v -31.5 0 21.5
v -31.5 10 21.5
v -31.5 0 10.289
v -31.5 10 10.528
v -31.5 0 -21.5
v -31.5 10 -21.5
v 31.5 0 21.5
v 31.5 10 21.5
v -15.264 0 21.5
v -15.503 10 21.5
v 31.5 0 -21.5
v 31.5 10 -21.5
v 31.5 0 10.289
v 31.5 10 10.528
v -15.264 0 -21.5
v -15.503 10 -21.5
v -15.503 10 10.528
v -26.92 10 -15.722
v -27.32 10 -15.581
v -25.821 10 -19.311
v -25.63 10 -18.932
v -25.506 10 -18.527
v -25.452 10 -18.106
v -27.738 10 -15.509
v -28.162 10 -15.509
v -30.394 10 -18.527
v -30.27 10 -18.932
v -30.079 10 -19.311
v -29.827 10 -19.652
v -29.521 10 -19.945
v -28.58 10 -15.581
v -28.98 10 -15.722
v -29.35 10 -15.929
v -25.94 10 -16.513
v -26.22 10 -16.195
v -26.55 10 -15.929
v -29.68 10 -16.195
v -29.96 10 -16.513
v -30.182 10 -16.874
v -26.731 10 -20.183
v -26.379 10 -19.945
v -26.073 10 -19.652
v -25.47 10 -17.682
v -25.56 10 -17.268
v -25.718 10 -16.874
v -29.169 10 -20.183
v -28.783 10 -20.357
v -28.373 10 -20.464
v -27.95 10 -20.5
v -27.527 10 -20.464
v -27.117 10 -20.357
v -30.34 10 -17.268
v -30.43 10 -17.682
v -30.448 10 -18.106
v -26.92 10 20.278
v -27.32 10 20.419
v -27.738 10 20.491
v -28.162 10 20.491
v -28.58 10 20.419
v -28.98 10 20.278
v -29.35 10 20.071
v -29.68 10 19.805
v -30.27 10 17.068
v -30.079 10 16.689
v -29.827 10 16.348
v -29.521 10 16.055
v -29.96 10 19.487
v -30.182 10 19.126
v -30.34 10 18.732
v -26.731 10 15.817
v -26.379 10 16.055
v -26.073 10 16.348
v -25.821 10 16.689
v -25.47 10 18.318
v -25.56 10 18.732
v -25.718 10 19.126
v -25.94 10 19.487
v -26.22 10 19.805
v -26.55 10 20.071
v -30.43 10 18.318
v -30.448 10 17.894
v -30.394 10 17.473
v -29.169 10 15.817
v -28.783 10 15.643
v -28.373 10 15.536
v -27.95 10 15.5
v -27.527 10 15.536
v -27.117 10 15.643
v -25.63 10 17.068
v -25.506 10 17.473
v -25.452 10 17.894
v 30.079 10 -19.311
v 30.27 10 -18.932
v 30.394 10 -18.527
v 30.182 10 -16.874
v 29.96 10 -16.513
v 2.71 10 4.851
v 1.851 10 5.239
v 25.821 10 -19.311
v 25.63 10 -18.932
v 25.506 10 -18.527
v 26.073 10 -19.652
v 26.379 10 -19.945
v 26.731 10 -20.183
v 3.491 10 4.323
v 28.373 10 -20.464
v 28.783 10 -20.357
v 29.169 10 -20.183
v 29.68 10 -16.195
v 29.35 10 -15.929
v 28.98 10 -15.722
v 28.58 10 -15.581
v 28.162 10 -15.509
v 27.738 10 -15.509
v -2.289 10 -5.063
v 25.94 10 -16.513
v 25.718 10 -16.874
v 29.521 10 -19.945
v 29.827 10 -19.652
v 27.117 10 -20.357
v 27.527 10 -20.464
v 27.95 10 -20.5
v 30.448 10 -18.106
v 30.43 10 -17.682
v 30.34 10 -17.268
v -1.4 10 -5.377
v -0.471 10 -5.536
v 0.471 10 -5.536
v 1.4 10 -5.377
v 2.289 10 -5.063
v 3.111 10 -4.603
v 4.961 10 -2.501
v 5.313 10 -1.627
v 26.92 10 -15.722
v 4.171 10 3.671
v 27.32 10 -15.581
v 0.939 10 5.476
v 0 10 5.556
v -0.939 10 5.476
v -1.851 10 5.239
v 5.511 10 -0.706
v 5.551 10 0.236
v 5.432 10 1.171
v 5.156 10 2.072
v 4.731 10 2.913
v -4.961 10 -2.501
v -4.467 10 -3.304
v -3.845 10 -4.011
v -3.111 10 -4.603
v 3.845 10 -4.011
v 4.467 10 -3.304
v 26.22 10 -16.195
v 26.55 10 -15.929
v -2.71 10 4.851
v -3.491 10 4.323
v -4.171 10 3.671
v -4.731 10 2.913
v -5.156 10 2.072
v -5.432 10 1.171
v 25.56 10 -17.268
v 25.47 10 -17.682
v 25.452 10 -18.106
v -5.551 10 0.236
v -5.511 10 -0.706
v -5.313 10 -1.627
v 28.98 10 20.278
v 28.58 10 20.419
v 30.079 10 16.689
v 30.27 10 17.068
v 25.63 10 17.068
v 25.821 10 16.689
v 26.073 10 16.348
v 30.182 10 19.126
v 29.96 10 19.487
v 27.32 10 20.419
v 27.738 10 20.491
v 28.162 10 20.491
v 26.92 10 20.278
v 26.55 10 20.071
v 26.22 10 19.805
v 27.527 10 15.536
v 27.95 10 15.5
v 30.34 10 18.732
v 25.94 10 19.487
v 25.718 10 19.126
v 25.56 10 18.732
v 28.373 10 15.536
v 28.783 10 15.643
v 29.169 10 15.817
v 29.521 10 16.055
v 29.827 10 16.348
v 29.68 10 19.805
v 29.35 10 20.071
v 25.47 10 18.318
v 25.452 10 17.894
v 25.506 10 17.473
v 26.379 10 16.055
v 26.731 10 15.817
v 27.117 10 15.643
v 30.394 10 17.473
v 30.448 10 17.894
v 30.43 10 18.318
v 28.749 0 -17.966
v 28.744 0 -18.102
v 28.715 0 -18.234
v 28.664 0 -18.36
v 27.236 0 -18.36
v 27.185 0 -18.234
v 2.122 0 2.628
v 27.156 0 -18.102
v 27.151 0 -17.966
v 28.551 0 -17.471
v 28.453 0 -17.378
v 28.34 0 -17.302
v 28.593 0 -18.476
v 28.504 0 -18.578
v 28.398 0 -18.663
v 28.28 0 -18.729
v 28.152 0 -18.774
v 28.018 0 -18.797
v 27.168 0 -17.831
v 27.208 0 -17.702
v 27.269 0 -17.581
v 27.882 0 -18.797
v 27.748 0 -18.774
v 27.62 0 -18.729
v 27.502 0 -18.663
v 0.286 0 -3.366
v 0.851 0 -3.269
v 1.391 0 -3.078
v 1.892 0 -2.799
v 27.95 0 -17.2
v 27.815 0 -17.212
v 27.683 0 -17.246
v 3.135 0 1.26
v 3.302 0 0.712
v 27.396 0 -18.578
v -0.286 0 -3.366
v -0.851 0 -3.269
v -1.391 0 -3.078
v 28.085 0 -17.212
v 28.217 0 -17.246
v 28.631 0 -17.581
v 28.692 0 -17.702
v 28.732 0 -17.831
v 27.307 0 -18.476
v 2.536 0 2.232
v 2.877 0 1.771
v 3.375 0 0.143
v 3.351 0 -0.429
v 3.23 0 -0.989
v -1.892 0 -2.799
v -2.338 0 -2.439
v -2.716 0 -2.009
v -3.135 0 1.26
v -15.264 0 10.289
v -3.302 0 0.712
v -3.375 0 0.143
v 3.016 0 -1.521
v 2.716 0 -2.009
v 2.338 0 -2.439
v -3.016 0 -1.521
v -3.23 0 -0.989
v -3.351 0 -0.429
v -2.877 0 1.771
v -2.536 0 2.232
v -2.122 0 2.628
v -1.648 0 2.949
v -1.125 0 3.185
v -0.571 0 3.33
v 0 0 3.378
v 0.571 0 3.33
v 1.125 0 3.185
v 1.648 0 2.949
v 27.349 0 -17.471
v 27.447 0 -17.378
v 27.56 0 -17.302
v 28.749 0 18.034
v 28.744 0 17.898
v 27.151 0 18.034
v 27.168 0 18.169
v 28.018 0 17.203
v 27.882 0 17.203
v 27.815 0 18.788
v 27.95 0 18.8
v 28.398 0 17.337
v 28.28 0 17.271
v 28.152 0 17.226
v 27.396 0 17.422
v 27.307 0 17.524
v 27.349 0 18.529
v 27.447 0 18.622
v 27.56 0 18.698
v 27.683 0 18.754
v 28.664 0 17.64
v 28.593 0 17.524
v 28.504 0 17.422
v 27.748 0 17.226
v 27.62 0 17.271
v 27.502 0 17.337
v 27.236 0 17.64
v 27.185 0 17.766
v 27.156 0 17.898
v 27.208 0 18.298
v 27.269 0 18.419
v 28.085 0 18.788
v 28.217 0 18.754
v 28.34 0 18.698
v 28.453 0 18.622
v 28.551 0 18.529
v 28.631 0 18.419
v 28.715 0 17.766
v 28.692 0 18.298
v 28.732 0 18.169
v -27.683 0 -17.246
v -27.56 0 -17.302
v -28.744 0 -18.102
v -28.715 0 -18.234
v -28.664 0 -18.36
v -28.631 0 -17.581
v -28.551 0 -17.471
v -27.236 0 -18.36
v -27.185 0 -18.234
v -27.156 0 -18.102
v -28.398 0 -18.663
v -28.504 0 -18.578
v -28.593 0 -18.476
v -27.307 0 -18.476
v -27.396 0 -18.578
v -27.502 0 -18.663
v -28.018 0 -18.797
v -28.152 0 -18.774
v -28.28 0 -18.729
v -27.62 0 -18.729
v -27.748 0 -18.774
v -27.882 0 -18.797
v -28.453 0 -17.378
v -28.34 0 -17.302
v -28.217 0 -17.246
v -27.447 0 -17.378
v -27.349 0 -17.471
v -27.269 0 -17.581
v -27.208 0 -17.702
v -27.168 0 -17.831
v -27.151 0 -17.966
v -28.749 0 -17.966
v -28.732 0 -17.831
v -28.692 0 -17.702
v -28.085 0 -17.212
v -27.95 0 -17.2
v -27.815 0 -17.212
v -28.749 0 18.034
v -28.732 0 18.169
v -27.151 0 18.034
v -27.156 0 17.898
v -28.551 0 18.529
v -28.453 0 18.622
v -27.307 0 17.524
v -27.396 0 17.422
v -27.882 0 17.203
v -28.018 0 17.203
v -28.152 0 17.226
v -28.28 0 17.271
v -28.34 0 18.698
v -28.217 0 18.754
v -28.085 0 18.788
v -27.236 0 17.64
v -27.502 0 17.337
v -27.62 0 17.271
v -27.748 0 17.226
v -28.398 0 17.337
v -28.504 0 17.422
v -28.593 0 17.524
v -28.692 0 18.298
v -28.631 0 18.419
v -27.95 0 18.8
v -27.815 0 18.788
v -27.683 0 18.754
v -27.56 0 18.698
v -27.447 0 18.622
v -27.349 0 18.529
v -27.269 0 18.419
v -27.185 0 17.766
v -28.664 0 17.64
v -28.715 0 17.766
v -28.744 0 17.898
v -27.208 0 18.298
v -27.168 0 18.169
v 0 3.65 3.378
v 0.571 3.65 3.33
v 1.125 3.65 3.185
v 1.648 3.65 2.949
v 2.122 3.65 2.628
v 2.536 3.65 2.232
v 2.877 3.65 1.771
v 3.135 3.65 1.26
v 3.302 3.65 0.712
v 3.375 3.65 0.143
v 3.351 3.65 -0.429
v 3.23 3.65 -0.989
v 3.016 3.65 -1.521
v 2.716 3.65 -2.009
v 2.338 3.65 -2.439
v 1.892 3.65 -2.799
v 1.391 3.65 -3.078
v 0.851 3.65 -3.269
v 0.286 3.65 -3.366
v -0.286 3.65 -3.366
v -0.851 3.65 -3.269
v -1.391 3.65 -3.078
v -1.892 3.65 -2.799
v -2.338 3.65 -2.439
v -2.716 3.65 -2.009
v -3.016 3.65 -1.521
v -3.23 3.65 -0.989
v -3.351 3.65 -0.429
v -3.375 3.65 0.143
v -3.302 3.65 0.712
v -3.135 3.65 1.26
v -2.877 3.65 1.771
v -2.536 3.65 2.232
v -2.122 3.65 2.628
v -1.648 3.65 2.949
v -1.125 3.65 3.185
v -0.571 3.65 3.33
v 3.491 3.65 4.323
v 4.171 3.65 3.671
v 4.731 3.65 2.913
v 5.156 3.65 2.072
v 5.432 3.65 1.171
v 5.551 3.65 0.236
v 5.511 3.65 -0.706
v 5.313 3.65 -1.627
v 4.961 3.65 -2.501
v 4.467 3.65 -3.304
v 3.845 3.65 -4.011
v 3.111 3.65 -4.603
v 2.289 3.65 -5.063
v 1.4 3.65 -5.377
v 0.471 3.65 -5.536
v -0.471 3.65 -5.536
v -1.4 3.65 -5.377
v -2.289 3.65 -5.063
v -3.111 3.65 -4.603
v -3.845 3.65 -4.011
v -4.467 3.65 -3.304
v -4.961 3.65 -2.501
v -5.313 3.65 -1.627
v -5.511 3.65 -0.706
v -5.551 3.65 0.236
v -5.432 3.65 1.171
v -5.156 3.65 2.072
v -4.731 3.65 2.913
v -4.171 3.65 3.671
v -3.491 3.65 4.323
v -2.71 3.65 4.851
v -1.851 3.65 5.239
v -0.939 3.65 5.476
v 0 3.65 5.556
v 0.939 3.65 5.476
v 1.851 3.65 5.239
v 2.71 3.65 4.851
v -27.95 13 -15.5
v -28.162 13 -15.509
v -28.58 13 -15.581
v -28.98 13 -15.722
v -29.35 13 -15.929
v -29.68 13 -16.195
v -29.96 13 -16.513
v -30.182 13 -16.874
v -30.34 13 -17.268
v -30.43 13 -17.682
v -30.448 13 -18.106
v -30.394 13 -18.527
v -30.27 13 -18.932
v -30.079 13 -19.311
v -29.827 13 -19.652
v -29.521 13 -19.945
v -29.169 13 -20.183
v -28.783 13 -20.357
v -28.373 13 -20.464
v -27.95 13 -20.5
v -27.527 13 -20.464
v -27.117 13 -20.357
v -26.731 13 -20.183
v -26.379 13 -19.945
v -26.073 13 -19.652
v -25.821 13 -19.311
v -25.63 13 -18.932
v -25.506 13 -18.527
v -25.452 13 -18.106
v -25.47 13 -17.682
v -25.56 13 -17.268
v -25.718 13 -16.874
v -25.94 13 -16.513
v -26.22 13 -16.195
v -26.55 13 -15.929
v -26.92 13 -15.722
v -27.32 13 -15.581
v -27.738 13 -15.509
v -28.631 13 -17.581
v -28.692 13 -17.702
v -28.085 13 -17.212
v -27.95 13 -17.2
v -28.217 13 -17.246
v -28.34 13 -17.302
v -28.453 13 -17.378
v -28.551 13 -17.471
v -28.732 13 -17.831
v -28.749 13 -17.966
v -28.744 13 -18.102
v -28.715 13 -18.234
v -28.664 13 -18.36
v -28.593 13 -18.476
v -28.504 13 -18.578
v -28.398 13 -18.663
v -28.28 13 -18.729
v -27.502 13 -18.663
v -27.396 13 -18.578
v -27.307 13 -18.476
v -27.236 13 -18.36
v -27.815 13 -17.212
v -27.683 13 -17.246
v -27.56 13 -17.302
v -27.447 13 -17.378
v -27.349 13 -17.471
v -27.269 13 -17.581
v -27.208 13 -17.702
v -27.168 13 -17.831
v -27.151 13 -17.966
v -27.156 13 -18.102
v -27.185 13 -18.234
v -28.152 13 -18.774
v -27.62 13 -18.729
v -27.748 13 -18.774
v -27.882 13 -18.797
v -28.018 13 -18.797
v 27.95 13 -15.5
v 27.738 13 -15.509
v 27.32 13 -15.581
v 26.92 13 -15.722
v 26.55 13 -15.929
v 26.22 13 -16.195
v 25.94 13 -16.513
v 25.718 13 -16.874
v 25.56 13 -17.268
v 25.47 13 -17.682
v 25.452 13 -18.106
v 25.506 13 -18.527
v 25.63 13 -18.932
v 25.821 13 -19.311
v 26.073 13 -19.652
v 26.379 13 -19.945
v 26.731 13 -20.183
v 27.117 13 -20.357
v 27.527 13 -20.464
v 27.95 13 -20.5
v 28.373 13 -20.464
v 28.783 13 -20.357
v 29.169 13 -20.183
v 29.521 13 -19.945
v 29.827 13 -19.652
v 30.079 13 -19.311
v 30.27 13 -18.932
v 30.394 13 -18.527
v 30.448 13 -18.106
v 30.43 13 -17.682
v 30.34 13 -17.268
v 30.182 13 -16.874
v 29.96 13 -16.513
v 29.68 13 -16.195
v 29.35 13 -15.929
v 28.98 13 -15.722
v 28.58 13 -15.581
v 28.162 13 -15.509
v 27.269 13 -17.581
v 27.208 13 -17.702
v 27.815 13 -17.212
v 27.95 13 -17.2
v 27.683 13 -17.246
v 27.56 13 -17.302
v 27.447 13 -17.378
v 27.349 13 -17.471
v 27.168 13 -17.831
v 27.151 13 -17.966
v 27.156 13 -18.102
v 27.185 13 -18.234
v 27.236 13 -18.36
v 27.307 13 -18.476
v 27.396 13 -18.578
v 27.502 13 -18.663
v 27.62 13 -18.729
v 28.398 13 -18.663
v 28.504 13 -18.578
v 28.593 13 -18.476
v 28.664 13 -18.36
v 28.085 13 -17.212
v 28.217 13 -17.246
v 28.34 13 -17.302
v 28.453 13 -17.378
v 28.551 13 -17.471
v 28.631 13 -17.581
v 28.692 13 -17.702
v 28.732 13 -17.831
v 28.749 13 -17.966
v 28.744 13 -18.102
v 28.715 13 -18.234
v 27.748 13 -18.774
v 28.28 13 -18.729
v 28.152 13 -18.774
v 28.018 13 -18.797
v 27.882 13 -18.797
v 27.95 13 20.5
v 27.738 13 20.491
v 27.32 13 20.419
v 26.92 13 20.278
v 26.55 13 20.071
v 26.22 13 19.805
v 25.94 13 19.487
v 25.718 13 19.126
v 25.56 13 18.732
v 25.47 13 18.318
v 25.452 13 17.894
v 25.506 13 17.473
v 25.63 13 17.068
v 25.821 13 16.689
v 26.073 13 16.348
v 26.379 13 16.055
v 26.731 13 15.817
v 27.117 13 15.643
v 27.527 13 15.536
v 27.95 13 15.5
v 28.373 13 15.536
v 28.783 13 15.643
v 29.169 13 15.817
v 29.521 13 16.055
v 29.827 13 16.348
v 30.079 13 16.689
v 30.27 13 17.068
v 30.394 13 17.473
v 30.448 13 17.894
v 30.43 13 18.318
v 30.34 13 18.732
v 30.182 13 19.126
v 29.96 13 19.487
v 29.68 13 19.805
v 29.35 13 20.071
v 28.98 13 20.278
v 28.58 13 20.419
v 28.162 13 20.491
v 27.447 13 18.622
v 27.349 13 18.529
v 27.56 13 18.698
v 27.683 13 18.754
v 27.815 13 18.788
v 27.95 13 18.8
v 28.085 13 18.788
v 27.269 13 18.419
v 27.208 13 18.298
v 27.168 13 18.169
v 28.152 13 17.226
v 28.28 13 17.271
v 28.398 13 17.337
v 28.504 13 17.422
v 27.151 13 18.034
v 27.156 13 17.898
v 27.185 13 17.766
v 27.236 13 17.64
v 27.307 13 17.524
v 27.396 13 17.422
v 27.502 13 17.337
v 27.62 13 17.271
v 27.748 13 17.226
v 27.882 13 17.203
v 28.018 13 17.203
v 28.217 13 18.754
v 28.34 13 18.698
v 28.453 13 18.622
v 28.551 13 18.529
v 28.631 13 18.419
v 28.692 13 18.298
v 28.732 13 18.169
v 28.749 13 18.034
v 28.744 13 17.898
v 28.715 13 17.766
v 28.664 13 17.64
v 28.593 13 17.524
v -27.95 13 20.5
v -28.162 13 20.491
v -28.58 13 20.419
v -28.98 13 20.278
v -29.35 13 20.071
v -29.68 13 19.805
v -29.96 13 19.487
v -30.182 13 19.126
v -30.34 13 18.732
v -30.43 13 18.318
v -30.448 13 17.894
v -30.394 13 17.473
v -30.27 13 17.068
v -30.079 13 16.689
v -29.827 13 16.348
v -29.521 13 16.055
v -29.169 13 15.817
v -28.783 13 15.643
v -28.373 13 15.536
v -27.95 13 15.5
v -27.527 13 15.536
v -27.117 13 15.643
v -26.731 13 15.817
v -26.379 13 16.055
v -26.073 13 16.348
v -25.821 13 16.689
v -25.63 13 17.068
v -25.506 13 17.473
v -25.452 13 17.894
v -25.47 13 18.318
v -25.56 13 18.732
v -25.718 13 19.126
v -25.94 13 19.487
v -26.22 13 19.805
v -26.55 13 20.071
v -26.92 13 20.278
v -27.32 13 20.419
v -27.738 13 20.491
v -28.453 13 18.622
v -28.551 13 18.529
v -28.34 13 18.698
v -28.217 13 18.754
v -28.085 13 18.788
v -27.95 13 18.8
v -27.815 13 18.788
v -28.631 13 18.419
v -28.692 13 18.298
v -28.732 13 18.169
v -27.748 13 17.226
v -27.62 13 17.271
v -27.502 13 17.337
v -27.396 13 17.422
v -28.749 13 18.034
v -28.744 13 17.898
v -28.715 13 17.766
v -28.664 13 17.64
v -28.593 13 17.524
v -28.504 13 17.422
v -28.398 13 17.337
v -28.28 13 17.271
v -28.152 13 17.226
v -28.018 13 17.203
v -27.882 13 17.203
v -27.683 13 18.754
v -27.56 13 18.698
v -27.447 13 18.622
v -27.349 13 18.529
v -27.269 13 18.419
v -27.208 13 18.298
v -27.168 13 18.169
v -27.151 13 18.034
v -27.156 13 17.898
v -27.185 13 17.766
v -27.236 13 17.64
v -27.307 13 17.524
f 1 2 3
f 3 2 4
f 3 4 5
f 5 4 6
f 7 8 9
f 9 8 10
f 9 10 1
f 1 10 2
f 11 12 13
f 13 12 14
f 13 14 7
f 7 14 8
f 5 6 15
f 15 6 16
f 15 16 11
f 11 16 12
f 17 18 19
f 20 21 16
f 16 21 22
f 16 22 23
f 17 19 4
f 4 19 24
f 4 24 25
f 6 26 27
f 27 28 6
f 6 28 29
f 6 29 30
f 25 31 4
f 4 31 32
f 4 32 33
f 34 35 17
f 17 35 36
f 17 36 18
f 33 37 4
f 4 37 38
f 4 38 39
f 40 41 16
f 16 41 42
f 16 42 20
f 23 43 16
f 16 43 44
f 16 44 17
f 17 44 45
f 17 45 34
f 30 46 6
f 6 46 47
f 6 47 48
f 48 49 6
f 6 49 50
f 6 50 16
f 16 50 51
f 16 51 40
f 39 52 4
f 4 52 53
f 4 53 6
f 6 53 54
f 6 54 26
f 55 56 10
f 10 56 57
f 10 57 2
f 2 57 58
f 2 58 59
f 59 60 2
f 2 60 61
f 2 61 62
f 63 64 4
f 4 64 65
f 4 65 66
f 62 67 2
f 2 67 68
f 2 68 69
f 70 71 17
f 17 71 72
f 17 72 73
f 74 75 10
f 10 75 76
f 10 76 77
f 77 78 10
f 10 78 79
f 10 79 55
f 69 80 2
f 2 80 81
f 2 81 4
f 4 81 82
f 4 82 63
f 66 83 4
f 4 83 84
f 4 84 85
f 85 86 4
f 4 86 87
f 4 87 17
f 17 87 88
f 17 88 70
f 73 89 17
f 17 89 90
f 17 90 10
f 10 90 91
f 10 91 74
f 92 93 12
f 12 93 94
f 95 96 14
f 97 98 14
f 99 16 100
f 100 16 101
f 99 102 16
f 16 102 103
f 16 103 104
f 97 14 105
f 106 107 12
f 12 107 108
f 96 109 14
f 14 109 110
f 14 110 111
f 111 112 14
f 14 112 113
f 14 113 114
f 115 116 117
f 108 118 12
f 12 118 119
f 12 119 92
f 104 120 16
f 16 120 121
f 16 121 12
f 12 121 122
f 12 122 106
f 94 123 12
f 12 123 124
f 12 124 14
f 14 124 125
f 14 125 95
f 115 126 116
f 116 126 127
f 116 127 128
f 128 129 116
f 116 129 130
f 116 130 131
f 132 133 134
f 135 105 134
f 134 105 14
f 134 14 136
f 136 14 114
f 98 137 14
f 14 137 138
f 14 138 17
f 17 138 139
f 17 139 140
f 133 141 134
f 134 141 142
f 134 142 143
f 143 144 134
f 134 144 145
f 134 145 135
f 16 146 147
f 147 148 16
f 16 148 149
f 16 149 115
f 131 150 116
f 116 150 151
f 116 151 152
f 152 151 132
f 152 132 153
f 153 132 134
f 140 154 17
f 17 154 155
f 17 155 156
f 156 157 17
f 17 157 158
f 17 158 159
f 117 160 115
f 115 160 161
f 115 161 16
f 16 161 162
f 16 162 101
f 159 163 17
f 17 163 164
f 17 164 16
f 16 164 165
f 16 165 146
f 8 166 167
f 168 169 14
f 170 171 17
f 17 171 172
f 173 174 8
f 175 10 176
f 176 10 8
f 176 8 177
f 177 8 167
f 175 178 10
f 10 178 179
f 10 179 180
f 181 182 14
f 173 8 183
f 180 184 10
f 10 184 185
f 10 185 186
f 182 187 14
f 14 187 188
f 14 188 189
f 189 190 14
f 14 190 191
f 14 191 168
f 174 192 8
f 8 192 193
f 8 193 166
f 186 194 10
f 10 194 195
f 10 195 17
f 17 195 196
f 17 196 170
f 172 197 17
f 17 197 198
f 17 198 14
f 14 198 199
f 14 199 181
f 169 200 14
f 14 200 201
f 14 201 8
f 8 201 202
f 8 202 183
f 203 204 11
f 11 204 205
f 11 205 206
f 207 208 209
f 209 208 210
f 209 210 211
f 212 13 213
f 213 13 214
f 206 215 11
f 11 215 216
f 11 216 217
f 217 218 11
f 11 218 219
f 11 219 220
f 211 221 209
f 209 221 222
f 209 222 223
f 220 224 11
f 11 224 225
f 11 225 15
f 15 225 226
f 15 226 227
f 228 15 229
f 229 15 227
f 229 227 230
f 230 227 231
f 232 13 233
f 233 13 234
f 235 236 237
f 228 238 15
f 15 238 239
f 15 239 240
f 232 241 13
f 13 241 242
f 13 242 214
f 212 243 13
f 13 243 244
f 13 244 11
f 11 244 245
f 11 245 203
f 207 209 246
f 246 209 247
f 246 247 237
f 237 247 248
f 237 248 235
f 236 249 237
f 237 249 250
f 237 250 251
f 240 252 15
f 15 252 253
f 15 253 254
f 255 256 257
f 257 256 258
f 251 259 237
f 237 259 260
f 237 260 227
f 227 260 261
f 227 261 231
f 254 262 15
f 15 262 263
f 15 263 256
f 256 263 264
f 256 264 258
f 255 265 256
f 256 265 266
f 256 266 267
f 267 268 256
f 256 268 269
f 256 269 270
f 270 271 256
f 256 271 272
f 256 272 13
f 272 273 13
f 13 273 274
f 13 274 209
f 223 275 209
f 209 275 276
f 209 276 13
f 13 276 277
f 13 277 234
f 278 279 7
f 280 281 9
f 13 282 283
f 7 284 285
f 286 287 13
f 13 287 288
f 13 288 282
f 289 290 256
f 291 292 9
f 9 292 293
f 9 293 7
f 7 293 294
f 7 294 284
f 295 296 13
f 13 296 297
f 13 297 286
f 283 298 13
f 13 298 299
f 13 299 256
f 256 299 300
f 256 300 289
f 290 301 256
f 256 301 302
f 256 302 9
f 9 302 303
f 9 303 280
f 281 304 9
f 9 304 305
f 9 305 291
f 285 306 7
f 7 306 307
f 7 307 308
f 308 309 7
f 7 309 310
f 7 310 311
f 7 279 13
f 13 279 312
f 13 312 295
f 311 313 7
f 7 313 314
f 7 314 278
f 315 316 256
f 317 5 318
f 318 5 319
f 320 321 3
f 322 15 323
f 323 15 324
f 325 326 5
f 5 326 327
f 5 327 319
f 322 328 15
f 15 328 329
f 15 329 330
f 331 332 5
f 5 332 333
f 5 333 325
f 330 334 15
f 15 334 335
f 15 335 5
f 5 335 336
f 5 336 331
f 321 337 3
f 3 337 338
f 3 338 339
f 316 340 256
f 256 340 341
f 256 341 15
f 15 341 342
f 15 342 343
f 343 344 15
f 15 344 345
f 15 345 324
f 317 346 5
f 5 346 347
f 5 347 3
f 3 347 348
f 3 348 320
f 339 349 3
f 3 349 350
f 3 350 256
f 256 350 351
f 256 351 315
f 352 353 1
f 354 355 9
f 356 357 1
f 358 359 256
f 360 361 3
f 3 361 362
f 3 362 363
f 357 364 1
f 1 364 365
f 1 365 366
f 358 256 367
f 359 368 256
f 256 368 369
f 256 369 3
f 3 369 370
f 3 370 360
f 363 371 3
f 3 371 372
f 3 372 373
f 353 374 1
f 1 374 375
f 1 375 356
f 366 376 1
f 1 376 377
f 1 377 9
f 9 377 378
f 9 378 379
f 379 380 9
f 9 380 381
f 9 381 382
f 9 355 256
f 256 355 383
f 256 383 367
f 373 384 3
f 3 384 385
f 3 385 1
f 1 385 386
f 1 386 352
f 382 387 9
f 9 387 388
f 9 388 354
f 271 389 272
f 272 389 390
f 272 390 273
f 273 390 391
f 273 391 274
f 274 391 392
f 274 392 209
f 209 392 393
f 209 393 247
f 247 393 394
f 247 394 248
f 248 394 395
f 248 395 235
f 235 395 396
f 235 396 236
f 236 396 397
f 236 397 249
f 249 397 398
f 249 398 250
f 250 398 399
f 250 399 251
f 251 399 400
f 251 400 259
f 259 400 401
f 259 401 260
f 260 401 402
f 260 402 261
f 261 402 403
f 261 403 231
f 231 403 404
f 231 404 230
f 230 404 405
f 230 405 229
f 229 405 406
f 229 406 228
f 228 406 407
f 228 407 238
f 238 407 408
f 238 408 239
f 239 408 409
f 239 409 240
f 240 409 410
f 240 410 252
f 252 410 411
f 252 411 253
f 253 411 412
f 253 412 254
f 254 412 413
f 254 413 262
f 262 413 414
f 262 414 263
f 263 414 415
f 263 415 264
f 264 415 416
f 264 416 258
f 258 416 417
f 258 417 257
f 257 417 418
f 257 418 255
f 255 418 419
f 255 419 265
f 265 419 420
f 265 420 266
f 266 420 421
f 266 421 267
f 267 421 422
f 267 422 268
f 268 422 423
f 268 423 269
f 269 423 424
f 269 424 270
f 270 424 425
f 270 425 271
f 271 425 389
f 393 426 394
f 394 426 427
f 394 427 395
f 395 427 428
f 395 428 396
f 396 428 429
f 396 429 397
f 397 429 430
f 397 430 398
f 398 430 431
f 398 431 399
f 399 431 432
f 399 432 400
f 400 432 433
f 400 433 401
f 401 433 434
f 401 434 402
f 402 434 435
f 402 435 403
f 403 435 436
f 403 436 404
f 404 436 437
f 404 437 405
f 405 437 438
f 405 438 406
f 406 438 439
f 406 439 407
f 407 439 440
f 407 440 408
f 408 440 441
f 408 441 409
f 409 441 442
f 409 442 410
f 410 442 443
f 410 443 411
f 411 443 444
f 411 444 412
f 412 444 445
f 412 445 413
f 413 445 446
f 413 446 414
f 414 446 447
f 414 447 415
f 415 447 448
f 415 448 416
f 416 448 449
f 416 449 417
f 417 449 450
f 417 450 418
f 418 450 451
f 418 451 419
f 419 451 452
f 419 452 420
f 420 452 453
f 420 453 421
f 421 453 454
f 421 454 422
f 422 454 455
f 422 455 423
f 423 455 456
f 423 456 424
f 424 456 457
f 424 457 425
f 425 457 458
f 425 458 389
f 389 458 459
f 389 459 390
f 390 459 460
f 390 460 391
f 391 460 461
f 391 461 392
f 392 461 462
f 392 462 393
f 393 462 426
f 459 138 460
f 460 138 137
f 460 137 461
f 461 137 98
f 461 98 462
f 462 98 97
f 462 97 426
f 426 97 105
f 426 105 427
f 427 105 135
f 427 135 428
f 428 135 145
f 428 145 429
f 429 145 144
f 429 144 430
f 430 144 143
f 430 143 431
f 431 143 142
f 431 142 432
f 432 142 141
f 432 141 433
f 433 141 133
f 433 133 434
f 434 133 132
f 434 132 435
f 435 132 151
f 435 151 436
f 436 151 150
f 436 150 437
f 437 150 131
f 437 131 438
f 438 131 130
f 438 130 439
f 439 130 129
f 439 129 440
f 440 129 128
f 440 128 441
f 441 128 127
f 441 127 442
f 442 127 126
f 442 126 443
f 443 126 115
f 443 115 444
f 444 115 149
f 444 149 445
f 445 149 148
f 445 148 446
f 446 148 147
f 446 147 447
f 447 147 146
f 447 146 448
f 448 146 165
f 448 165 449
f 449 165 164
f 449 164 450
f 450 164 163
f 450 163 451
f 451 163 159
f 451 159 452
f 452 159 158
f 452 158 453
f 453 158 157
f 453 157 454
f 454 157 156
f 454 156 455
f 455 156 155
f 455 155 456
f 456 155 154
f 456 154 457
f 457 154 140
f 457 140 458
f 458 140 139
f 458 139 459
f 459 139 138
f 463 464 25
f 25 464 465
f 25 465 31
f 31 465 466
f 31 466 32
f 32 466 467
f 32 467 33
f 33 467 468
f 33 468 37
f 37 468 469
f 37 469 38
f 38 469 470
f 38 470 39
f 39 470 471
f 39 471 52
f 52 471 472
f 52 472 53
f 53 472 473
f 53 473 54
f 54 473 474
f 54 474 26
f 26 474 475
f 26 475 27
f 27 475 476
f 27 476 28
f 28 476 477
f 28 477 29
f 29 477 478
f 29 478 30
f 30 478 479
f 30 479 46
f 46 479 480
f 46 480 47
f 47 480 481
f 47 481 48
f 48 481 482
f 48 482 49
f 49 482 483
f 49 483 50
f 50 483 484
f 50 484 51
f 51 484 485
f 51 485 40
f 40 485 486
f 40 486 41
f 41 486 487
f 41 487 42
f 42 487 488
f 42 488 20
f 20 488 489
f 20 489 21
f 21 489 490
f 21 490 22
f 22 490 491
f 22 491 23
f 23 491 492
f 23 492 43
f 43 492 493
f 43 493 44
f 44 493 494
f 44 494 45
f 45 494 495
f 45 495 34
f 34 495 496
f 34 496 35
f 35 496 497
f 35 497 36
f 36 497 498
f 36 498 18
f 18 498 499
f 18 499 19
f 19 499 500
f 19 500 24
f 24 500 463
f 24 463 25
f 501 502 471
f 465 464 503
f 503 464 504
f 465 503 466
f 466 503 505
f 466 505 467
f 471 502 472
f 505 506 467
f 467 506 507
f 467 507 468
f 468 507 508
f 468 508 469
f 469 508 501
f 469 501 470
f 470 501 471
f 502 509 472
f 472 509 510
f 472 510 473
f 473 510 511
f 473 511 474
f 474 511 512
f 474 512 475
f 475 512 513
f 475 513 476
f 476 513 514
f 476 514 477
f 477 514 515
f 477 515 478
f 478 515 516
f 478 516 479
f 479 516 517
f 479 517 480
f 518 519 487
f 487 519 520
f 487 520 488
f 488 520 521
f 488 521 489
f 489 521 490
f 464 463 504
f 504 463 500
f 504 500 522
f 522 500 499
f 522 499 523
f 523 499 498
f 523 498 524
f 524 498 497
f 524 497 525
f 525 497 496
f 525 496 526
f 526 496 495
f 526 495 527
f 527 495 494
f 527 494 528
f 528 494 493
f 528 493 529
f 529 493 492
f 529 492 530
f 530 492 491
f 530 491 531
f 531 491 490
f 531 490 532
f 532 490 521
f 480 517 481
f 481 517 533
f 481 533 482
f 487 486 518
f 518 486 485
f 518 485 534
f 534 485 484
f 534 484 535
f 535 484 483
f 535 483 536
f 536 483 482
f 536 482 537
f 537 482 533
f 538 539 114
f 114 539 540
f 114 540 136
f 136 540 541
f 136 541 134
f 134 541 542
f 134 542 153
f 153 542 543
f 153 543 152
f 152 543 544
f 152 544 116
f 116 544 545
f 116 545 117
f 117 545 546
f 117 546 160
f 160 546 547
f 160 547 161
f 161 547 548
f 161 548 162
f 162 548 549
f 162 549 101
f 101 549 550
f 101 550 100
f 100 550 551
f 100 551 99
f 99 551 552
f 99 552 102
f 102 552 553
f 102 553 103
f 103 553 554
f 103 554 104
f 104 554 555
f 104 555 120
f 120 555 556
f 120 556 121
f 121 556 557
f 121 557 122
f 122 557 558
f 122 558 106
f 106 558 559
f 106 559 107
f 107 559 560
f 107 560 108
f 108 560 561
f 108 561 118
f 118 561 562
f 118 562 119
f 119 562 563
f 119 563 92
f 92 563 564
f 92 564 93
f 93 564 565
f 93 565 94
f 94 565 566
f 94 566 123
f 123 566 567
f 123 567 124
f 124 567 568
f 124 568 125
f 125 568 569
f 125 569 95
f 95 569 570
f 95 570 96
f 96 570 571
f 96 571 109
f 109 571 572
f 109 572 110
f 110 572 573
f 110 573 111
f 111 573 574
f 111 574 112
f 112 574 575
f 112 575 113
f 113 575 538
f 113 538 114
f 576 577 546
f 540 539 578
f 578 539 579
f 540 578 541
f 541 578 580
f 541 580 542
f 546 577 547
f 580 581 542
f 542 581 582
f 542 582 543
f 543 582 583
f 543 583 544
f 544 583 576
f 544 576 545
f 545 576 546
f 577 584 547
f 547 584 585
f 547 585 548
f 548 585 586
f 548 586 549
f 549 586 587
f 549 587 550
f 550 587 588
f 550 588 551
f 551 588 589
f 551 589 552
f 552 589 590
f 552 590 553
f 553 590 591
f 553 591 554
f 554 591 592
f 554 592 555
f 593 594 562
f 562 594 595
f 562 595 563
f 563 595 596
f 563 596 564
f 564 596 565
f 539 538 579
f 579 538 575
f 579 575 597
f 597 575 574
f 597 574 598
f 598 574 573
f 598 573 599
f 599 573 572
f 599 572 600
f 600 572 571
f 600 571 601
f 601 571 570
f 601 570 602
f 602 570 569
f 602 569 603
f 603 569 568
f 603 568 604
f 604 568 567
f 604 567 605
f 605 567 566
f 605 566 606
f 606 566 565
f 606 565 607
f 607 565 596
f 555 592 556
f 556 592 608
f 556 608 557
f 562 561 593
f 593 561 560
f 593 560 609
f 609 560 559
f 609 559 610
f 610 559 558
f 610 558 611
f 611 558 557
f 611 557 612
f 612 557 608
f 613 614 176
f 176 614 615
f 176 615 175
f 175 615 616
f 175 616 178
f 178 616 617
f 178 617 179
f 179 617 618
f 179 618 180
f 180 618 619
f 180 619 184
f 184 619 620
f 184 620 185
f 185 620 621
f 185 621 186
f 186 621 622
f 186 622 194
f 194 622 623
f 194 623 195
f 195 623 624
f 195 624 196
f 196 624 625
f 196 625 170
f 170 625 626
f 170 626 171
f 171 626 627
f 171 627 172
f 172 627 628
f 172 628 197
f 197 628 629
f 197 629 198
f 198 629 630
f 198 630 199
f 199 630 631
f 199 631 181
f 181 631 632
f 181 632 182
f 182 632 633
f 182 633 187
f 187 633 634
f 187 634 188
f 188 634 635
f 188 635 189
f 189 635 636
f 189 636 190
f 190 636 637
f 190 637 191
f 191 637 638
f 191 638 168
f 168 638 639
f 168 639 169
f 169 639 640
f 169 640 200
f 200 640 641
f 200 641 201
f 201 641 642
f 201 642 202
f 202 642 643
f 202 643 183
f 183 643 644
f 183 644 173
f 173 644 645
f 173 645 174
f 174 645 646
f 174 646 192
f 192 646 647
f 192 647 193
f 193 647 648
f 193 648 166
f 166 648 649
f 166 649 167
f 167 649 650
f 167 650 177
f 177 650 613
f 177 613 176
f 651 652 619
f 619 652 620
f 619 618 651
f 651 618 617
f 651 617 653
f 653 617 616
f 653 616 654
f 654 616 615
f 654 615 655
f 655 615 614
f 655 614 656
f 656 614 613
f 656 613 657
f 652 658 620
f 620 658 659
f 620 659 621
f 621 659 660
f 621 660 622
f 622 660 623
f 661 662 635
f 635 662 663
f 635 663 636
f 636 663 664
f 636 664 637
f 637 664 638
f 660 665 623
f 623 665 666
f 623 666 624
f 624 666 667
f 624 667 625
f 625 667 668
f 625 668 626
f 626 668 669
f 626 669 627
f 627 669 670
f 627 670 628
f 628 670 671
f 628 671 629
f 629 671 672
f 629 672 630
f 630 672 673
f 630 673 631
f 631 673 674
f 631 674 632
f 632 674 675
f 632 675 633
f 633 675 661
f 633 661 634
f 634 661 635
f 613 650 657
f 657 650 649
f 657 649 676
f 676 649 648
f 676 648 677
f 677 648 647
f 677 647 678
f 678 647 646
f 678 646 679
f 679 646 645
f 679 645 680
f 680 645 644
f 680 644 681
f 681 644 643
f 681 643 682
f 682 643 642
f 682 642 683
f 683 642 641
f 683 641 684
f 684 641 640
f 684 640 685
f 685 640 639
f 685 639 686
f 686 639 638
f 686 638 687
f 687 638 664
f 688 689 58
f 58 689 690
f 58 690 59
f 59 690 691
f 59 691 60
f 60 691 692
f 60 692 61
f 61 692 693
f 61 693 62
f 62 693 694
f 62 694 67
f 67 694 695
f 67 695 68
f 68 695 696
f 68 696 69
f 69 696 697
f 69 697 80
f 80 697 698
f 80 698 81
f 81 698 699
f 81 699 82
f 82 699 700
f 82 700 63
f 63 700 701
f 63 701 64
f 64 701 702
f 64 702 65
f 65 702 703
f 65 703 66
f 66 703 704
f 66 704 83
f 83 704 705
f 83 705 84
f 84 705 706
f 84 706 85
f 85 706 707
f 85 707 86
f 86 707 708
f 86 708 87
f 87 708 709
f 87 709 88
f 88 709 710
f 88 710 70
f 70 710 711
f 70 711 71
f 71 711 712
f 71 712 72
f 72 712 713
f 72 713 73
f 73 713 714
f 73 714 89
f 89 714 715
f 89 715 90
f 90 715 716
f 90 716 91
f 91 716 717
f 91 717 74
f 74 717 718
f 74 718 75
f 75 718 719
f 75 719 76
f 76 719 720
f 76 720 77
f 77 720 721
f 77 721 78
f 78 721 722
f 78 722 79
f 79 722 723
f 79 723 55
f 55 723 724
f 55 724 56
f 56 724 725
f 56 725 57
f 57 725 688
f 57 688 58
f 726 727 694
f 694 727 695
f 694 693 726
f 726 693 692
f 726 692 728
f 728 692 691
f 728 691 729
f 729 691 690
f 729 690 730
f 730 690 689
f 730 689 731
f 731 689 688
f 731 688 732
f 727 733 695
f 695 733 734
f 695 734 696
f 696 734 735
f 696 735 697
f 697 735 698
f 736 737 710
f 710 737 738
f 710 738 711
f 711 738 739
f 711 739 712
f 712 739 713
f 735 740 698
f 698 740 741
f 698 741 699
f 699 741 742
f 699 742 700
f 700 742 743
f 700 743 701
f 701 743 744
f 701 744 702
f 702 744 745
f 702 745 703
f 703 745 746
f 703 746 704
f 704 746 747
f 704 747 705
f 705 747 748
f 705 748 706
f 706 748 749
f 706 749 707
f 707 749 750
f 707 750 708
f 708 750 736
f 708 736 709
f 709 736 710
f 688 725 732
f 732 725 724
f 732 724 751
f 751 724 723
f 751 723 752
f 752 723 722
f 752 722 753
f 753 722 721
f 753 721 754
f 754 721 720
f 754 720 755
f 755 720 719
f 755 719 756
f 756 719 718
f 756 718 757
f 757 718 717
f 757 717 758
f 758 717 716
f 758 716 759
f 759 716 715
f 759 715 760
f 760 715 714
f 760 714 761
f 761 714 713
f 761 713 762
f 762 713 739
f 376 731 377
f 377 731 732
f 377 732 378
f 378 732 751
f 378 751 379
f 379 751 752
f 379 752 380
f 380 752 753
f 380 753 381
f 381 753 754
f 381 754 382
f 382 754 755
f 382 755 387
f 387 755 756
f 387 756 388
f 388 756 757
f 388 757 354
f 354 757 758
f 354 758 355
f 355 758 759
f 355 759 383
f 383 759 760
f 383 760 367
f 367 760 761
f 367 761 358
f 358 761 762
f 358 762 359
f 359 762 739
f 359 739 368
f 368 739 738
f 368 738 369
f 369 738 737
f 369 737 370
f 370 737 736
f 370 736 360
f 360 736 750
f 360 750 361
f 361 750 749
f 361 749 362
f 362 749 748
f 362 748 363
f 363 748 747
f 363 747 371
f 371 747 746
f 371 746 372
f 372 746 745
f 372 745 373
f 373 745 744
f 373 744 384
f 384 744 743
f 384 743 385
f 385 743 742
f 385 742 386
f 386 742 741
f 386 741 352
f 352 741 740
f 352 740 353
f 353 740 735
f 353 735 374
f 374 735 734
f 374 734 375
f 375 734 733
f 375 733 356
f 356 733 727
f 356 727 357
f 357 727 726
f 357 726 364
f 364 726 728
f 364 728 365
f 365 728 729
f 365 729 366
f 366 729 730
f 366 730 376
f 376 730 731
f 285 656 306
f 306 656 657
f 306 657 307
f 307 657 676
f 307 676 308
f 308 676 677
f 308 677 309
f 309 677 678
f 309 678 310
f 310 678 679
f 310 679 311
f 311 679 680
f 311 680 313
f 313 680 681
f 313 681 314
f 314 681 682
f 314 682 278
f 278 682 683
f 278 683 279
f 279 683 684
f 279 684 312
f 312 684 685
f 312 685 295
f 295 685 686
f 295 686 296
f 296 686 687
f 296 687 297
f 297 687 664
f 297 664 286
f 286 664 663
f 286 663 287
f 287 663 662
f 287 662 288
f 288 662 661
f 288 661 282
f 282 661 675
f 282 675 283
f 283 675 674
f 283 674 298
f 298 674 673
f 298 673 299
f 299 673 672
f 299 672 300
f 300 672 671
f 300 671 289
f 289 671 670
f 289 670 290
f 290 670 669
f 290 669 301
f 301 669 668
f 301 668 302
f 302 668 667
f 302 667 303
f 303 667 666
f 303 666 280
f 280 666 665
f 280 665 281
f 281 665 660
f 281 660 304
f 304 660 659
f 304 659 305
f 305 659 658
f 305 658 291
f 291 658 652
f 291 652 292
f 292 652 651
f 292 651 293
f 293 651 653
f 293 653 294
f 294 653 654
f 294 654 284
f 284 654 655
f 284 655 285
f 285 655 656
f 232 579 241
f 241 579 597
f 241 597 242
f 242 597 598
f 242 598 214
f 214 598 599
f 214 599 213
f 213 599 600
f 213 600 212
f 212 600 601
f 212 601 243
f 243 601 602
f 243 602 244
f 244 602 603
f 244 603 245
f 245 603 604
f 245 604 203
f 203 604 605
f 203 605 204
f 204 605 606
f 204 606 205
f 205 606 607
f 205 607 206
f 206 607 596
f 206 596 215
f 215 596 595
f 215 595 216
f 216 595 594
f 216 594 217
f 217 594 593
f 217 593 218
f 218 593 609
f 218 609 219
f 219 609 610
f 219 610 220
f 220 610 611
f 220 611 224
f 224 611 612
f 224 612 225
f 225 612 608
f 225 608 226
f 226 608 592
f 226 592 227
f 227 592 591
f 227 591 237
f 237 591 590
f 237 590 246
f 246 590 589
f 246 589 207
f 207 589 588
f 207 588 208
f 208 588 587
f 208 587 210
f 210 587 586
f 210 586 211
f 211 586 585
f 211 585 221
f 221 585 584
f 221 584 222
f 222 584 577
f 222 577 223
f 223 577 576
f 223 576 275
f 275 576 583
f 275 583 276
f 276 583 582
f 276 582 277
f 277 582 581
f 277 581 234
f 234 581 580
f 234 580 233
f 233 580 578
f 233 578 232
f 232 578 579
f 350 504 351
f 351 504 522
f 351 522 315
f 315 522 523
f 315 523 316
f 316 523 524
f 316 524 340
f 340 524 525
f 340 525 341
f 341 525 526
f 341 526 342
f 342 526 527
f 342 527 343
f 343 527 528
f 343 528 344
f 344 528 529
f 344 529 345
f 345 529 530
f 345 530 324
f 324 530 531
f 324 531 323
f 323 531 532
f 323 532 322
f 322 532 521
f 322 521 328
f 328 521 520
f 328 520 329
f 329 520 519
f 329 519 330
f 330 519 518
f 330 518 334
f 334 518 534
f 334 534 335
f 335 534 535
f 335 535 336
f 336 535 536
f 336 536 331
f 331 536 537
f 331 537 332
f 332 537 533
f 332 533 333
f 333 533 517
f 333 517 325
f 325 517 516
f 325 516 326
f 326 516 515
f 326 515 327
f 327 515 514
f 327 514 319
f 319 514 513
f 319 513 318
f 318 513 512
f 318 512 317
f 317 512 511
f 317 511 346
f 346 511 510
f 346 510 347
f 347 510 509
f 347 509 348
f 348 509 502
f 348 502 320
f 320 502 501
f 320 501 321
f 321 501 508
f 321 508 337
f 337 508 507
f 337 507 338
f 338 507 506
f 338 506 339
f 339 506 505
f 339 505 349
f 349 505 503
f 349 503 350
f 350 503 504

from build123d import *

# Parameters (mm, degrees)
SKETCH1_W                                        = 63
SKETCH1_H                                        = 43
BOSS_EXTRUDE1_DEPTH                              = 10
CBORE_FOR_1_4_SOCKET_HEAD_CAP_SCREW1_D           = 6.7564
CBORE_FOR_1_4_SOCKET_HEAD_CAP_SCREW1_CBORE_D     = 11.1125
CBORE_FOR_1_4_SOCKET_HEAD_CAP_SCREW1_CBORE_DEPTH = 6.35
SKETCH6_R                                        = 2.5
BOSS_EXTRUDE2_DEPTH                              = 3
M2X0_4_TAPPED_HOLE1_D                            = 1.6


with BuildPart() as part:
    # Sketch1 → Boss-Extrude1 (new body)
    with BuildSketch(Plane(origin=(0, 0, 0), x_dir=(1, 0, 0), z_dir=(0, 1, 0))):
        Rectangle(SKETCH1_W, SKETCH1_H)
    extrude(amount=BOSS_EXTRUDE1_DEPTH)

    # CBORE for 1/4 Socket Head Cap Screw1 (through all)
    with Locations(Plane(origin=(0, 10, 0), x_dir=(1, 0, 0), z_dir=(0, 1, 0))):
        with Locations((0, 0)):
            CounterBoreHole(CBORE_FOR_1_4_SOCKET_HEAD_CAP_SCREW1_D / 2, CBORE_FOR_1_4_SOCKET_HEAD_CAP_SCREW1_CBORE_D / 2, CBORE_FOR_1_4_SOCKET_HEAD_CAP_SCREW1_CBORE_DEPTH)

    # Sketch6 → Boss-Extrude2 (add)
    with BuildSketch(Plane(origin=(0, 10, 0), x_dir=(1, 0, 0), z_dir=(0, 1, 0))):
        with Locations(Location((-27.95, 18, 0), (0, 0, 90))):
            Circle(SKETCH6_R)
        with Locations(Location((27.95, 18, 0), (0, 0, 90))):
            Circle(SKETCH6_R)
        with Locations(Location((27.95, -18, 0), (0, 0, 90))):
            Circle(SKETCH6_R)
        with Locations(Location((-27.95, -18, 0), (0, 0, 90))):
            Circle(SKETCH6_R)
    extrude(amount=BOSS_EXTRUDE2_DEPTH)

    # M2x0.4 Tapped Hole1 (through all)
    with Locations(Plane(origin=(0, 13, 0), x_dir=(1, 0, 0), z_dir=(0, 1, 0))):
        with Locations((-27.95, 18), (27.95, 18), (27.95, -18), (-27.95, -18)):
            Hole(M2X0_4_TAPPED_HOLE1_D / 2)


solid = part.part
